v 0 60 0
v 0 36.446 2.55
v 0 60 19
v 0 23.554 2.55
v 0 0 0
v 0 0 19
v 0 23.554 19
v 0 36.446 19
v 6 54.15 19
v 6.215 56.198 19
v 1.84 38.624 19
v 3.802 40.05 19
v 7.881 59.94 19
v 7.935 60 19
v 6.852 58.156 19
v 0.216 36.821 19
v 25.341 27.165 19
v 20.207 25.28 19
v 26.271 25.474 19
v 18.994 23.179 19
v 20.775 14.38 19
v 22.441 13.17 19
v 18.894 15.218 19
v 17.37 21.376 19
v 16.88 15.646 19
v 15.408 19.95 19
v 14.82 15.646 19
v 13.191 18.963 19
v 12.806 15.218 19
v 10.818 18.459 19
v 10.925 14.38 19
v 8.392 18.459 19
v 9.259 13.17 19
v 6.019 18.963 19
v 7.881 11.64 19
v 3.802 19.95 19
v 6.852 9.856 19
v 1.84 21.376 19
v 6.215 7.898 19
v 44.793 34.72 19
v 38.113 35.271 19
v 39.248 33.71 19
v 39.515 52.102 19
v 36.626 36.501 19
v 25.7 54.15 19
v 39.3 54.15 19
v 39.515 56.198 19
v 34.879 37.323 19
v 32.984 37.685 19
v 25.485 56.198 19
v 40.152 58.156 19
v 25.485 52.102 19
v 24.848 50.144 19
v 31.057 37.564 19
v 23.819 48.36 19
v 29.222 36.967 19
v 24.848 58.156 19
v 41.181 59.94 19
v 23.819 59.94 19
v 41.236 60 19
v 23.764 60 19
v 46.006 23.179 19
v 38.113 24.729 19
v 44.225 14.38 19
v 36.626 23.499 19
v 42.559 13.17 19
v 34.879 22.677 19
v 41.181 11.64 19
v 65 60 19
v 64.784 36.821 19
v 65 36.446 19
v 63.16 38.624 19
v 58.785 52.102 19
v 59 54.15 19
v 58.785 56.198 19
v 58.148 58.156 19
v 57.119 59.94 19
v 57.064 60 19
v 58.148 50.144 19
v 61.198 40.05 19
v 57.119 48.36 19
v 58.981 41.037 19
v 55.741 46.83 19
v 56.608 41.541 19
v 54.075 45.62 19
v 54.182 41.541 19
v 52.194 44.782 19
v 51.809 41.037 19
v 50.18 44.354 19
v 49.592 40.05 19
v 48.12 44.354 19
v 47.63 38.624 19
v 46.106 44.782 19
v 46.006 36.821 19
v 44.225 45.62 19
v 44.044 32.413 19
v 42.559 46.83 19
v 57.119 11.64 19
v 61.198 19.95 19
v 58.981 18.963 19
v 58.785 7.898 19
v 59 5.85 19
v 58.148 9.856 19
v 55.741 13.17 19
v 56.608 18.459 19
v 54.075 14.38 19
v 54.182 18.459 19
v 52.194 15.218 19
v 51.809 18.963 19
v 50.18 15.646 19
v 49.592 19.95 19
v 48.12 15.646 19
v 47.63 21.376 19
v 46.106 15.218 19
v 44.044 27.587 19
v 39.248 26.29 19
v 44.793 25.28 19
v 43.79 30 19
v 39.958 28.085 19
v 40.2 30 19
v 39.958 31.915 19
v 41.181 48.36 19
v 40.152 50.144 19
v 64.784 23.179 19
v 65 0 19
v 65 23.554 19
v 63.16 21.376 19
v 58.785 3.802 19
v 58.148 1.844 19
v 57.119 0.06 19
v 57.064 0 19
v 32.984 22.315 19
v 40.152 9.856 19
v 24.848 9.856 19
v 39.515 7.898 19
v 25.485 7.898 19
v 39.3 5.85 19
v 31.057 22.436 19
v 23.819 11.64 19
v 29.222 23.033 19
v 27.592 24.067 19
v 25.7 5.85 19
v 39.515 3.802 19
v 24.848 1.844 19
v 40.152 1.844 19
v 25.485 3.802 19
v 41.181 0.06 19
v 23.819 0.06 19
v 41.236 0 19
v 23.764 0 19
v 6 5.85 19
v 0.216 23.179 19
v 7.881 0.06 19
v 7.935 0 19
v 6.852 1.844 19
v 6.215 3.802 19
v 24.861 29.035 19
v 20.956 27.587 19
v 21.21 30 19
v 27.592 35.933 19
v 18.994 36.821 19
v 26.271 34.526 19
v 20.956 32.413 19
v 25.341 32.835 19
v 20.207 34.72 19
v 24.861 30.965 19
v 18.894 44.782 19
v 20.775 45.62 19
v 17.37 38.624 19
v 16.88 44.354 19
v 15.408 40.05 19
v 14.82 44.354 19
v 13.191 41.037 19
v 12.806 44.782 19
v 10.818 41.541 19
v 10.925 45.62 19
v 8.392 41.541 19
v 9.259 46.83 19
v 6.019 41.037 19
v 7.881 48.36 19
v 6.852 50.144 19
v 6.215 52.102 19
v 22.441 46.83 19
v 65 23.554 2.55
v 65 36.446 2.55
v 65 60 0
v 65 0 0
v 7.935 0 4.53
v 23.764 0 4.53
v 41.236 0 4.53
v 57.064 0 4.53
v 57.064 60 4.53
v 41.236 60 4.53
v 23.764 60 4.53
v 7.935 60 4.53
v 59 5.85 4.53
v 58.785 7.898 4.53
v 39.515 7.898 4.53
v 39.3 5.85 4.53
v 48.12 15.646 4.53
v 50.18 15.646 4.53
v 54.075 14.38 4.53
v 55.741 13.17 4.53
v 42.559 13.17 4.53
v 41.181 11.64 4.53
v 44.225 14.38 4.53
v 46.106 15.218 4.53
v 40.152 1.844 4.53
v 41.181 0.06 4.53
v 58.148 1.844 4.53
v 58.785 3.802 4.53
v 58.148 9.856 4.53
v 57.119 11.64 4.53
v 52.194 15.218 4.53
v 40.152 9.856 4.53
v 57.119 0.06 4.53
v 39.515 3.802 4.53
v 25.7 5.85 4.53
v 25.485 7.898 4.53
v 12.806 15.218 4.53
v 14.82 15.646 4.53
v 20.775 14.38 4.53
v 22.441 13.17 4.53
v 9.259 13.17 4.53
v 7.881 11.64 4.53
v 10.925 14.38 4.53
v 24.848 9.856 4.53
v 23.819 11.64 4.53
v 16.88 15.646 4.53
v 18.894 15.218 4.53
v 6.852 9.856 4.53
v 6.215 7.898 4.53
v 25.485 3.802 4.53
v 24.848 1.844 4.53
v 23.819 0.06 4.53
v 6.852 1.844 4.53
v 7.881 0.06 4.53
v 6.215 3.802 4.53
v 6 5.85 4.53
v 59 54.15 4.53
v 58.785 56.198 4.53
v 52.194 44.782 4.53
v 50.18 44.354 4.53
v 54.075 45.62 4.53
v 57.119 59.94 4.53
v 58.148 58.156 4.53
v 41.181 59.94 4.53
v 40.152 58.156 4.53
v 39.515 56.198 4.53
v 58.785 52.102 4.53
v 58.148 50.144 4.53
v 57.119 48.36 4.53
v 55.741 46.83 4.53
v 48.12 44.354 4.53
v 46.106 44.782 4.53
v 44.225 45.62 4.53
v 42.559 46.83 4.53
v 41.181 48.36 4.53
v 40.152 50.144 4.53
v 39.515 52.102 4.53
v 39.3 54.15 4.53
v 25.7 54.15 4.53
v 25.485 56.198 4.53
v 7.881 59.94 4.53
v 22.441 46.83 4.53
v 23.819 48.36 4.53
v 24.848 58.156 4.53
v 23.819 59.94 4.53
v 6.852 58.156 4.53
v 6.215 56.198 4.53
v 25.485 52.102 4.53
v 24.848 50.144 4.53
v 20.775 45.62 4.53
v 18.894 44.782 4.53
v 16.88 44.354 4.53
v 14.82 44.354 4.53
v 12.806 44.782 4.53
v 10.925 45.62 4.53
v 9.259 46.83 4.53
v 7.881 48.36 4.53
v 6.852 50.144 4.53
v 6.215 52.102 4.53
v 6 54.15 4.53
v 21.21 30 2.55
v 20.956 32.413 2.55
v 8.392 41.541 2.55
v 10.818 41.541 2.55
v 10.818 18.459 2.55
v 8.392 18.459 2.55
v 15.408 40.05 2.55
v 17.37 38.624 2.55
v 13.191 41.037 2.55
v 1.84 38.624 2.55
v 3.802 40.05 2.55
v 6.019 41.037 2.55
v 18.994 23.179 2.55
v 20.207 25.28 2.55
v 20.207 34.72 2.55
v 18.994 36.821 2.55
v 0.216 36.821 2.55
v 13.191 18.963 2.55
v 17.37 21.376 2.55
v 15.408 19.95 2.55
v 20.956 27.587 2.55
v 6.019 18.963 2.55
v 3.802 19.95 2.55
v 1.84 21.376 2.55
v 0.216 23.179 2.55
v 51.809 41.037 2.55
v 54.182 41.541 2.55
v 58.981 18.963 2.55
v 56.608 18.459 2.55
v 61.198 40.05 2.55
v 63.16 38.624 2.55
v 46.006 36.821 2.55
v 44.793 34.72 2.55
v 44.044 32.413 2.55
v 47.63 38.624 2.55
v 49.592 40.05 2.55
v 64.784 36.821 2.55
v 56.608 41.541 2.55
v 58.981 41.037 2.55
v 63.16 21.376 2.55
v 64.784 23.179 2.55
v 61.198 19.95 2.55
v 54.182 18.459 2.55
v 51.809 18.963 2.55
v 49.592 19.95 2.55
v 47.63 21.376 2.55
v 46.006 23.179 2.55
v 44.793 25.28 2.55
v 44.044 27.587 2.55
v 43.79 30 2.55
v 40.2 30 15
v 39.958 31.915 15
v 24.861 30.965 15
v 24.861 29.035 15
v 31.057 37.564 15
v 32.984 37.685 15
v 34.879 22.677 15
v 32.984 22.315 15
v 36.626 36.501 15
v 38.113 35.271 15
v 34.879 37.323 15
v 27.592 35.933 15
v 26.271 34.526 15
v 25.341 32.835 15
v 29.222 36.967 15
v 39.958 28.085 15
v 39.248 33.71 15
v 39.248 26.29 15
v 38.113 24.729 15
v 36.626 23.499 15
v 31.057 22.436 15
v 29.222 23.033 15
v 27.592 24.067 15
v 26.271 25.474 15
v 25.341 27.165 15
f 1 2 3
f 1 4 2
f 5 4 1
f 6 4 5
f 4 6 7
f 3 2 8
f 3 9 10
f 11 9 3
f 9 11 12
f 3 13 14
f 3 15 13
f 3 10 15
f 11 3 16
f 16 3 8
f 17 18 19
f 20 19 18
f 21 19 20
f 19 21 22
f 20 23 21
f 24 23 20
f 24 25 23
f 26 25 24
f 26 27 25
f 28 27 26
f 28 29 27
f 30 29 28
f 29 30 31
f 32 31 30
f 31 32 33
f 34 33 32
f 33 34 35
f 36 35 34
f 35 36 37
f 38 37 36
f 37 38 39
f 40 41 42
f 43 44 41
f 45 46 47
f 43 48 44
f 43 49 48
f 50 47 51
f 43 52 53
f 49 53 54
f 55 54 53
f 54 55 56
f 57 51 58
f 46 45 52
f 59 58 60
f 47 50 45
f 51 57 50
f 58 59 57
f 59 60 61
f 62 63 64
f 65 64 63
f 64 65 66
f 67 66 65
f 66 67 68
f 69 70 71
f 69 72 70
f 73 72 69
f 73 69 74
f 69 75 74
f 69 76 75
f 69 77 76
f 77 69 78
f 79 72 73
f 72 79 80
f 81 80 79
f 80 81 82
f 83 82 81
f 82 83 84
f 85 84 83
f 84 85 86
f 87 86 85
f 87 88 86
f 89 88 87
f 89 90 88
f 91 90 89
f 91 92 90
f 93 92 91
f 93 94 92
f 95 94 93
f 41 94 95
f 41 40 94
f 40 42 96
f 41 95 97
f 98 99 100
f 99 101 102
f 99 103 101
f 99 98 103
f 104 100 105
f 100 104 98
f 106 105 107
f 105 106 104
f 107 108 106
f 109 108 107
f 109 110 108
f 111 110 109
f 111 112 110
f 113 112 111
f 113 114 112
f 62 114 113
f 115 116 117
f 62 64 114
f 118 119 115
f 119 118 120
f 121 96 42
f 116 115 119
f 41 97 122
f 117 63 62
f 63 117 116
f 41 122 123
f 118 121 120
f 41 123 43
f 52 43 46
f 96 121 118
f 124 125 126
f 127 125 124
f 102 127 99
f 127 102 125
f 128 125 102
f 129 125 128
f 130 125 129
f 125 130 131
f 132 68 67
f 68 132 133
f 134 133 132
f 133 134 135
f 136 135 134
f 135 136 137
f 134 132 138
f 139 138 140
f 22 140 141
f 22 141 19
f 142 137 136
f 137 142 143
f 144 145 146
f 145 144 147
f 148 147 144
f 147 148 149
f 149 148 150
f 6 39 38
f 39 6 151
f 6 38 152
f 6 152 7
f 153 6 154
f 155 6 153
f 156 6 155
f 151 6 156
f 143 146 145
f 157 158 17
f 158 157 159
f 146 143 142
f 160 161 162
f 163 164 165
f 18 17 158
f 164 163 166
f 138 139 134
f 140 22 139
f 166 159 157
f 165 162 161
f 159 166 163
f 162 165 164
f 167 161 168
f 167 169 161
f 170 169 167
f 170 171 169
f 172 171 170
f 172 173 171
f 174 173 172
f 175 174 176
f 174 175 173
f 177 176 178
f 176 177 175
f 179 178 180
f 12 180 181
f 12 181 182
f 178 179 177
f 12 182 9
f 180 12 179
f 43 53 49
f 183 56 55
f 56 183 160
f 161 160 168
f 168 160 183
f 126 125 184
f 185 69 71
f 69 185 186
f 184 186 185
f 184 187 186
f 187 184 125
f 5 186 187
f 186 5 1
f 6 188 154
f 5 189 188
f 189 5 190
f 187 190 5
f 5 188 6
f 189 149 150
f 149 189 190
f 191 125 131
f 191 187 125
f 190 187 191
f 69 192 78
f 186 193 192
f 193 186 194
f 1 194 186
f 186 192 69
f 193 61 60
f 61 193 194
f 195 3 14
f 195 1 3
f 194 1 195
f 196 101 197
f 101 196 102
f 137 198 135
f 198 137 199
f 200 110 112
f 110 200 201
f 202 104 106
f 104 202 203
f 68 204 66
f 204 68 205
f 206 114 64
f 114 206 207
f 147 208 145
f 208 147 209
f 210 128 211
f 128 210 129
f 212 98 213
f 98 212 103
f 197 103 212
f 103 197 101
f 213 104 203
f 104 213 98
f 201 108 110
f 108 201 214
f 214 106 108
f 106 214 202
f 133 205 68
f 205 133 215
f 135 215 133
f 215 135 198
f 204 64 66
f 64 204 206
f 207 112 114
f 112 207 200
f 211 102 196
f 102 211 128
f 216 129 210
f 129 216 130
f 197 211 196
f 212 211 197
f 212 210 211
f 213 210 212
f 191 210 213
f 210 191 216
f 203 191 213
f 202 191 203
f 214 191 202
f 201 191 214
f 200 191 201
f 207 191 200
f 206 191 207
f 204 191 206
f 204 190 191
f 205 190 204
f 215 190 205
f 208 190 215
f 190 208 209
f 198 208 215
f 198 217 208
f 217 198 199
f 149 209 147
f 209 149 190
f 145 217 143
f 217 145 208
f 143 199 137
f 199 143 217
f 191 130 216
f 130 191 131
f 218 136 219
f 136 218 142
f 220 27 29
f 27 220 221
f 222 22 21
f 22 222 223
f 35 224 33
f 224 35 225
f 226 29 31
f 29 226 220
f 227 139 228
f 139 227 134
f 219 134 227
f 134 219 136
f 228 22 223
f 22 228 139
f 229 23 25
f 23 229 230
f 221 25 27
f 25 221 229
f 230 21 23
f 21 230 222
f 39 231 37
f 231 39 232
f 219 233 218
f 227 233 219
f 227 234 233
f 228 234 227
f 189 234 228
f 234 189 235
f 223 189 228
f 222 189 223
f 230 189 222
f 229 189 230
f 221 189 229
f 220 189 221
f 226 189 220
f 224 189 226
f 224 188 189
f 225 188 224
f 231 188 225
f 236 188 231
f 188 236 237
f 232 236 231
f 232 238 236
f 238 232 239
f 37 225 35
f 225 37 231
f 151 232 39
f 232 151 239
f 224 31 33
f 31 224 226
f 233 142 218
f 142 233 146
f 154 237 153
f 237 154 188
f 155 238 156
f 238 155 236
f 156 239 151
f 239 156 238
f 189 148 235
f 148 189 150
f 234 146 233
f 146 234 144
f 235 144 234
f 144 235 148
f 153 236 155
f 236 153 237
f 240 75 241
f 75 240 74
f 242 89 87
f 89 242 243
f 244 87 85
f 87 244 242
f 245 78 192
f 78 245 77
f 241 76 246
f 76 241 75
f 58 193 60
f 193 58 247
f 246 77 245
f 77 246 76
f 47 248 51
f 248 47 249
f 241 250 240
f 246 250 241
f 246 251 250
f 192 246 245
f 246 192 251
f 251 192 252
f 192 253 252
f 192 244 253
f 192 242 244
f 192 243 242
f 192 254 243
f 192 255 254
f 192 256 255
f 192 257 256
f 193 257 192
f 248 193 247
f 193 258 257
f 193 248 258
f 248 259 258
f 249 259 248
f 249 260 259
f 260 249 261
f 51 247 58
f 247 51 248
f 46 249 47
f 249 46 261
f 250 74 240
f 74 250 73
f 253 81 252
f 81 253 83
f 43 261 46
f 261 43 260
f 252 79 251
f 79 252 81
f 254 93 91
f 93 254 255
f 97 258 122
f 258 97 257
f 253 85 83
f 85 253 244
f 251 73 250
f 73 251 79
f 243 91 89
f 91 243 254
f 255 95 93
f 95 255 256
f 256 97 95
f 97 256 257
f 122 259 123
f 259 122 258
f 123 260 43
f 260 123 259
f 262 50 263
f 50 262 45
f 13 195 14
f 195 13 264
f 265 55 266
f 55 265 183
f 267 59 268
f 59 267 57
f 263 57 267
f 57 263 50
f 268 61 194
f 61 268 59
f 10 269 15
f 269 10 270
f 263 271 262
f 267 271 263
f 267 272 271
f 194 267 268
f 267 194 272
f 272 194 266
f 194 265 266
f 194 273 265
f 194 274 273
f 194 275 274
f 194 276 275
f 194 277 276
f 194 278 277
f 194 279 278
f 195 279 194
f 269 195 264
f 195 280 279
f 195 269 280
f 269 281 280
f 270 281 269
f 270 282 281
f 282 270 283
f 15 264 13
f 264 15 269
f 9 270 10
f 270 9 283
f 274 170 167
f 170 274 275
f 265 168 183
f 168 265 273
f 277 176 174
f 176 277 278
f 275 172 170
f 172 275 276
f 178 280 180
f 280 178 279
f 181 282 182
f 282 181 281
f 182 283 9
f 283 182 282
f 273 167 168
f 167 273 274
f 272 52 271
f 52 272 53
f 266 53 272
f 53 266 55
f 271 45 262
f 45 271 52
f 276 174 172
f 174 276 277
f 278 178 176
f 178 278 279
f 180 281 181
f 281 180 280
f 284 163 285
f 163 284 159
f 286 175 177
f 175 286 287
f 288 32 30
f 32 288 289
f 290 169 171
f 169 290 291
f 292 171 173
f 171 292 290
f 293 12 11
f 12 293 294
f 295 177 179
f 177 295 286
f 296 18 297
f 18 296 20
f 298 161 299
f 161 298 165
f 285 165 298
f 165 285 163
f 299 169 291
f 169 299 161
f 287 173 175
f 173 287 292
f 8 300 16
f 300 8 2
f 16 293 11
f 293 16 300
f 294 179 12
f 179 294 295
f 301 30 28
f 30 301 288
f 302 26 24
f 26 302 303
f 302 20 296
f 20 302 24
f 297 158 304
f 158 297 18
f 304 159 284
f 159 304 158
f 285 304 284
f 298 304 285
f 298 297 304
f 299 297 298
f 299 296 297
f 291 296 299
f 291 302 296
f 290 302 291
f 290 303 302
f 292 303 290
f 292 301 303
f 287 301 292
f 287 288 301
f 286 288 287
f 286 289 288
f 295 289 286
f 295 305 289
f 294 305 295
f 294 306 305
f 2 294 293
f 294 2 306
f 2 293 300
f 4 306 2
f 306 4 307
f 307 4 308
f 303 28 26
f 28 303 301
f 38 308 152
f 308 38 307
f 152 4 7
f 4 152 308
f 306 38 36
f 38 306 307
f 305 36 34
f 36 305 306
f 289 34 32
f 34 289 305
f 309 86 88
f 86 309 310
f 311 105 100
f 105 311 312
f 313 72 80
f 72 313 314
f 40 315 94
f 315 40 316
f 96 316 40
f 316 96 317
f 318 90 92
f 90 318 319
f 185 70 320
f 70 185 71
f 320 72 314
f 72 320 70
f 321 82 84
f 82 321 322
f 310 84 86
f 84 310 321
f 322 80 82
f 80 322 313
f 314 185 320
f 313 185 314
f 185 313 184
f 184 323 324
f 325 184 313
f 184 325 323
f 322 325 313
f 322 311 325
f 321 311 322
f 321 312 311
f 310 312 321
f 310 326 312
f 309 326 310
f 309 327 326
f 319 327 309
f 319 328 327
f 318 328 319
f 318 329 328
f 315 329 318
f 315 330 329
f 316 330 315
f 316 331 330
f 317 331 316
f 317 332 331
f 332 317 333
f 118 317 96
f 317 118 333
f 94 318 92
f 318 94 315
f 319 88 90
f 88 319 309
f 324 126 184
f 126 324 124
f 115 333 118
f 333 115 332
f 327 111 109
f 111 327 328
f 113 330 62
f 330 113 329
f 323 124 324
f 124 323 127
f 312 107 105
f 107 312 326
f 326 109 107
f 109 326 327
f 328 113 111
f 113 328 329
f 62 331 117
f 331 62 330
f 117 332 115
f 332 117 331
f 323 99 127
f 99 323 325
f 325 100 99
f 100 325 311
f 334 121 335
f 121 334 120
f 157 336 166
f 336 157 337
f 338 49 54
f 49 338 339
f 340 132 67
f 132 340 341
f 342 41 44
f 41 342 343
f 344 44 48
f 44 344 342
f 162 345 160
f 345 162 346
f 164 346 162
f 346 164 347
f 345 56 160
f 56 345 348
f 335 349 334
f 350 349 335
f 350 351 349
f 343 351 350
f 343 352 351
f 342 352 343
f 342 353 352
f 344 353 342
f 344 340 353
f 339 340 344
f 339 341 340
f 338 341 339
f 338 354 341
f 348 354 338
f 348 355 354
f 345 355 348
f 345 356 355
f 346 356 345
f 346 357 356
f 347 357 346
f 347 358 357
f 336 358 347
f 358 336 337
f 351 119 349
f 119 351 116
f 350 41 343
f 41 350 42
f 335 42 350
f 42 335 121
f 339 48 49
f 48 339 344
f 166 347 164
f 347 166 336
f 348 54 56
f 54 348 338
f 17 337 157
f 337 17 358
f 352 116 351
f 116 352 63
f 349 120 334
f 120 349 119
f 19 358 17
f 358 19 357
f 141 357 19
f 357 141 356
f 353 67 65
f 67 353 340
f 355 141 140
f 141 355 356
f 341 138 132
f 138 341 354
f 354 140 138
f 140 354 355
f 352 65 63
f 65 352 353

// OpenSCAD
length = 65;
width = 60;
height = 19;

//Based on magnet size:
magnetBaseInnerDiameter = 15.4;
magnetHeight = 4.0;

//
//		1s
//			19.2 diameter
//			28 coins
//			height 13.97
//
//		5s
//			13 coins
//			22.71 diameter
//			height 15.95

smallCircleDiameter = 19.2 + .5;
smallCircleOffset = 4;
smallCircleHeight = 13.97 + .5;

largeCircleDiameter = 22.71 + .5;
largeCircleOffset = 5;
largeCircleHeight = 15.95 + .5;

spaceBetweenCircles = 3;

difference(){
    cube([length, width, height]);

    translate([
        length - (spaceBetweenCircles * 2 + smallCircleDiameter/2),
        smallCircleDiameter/2 - smallCircleOffset,
        height - smallCircleHeight])
        cylinder(smallCircleHeight, d=smallCircleDiameter);
   translate([
        (spaceBetweenCircles * 2 + smallCircleDiameter/2),
        smallCircleDiameter/2 - smallCircleOffset,
        height - smallCircleHeight])
        cylinder(smallCircleHeight, d=smallCircleDiameter);

   translate([
        length - (spaceBetweenCircles * 2 + smallCircleDiameter/2),
        width - (smallCircleDiameter/2 - smallCircleOffset),
        height - smallCircleHeight])
        cylinder(smallCircleHeight, d=smallCircleDiameter);
   translate([
        (spaceBetweenCircles * 2 + smallCircleDiameter/2),
        width - (smallCircleDiameter/2 - smallCircleOffset),
        height - smallCircleHeight])
        cylinder(smallCircleHeight, d=smallCircleDiameter);
    

    translate([largeCircleDiameter/2 + spaceBetweenCircles - largeCircleOffset, width/2, height - largeCircleHeight])
        cylinder(largeCircleHeight, d=largeCircleDiameter);

    translate([length - (largeCircleDiameter/2 + spaceBetweenCircles - largeCircleOffset), width/2, height - largeCircleHeight])
        cylinder(largeCircleHeight, d=largeCircleDiameter);
        
    translate([length/2, width/2, height - magnetHeight])
        cylinder(magnetHeight, d=magnetBaseInnerDiameter);
        

}
